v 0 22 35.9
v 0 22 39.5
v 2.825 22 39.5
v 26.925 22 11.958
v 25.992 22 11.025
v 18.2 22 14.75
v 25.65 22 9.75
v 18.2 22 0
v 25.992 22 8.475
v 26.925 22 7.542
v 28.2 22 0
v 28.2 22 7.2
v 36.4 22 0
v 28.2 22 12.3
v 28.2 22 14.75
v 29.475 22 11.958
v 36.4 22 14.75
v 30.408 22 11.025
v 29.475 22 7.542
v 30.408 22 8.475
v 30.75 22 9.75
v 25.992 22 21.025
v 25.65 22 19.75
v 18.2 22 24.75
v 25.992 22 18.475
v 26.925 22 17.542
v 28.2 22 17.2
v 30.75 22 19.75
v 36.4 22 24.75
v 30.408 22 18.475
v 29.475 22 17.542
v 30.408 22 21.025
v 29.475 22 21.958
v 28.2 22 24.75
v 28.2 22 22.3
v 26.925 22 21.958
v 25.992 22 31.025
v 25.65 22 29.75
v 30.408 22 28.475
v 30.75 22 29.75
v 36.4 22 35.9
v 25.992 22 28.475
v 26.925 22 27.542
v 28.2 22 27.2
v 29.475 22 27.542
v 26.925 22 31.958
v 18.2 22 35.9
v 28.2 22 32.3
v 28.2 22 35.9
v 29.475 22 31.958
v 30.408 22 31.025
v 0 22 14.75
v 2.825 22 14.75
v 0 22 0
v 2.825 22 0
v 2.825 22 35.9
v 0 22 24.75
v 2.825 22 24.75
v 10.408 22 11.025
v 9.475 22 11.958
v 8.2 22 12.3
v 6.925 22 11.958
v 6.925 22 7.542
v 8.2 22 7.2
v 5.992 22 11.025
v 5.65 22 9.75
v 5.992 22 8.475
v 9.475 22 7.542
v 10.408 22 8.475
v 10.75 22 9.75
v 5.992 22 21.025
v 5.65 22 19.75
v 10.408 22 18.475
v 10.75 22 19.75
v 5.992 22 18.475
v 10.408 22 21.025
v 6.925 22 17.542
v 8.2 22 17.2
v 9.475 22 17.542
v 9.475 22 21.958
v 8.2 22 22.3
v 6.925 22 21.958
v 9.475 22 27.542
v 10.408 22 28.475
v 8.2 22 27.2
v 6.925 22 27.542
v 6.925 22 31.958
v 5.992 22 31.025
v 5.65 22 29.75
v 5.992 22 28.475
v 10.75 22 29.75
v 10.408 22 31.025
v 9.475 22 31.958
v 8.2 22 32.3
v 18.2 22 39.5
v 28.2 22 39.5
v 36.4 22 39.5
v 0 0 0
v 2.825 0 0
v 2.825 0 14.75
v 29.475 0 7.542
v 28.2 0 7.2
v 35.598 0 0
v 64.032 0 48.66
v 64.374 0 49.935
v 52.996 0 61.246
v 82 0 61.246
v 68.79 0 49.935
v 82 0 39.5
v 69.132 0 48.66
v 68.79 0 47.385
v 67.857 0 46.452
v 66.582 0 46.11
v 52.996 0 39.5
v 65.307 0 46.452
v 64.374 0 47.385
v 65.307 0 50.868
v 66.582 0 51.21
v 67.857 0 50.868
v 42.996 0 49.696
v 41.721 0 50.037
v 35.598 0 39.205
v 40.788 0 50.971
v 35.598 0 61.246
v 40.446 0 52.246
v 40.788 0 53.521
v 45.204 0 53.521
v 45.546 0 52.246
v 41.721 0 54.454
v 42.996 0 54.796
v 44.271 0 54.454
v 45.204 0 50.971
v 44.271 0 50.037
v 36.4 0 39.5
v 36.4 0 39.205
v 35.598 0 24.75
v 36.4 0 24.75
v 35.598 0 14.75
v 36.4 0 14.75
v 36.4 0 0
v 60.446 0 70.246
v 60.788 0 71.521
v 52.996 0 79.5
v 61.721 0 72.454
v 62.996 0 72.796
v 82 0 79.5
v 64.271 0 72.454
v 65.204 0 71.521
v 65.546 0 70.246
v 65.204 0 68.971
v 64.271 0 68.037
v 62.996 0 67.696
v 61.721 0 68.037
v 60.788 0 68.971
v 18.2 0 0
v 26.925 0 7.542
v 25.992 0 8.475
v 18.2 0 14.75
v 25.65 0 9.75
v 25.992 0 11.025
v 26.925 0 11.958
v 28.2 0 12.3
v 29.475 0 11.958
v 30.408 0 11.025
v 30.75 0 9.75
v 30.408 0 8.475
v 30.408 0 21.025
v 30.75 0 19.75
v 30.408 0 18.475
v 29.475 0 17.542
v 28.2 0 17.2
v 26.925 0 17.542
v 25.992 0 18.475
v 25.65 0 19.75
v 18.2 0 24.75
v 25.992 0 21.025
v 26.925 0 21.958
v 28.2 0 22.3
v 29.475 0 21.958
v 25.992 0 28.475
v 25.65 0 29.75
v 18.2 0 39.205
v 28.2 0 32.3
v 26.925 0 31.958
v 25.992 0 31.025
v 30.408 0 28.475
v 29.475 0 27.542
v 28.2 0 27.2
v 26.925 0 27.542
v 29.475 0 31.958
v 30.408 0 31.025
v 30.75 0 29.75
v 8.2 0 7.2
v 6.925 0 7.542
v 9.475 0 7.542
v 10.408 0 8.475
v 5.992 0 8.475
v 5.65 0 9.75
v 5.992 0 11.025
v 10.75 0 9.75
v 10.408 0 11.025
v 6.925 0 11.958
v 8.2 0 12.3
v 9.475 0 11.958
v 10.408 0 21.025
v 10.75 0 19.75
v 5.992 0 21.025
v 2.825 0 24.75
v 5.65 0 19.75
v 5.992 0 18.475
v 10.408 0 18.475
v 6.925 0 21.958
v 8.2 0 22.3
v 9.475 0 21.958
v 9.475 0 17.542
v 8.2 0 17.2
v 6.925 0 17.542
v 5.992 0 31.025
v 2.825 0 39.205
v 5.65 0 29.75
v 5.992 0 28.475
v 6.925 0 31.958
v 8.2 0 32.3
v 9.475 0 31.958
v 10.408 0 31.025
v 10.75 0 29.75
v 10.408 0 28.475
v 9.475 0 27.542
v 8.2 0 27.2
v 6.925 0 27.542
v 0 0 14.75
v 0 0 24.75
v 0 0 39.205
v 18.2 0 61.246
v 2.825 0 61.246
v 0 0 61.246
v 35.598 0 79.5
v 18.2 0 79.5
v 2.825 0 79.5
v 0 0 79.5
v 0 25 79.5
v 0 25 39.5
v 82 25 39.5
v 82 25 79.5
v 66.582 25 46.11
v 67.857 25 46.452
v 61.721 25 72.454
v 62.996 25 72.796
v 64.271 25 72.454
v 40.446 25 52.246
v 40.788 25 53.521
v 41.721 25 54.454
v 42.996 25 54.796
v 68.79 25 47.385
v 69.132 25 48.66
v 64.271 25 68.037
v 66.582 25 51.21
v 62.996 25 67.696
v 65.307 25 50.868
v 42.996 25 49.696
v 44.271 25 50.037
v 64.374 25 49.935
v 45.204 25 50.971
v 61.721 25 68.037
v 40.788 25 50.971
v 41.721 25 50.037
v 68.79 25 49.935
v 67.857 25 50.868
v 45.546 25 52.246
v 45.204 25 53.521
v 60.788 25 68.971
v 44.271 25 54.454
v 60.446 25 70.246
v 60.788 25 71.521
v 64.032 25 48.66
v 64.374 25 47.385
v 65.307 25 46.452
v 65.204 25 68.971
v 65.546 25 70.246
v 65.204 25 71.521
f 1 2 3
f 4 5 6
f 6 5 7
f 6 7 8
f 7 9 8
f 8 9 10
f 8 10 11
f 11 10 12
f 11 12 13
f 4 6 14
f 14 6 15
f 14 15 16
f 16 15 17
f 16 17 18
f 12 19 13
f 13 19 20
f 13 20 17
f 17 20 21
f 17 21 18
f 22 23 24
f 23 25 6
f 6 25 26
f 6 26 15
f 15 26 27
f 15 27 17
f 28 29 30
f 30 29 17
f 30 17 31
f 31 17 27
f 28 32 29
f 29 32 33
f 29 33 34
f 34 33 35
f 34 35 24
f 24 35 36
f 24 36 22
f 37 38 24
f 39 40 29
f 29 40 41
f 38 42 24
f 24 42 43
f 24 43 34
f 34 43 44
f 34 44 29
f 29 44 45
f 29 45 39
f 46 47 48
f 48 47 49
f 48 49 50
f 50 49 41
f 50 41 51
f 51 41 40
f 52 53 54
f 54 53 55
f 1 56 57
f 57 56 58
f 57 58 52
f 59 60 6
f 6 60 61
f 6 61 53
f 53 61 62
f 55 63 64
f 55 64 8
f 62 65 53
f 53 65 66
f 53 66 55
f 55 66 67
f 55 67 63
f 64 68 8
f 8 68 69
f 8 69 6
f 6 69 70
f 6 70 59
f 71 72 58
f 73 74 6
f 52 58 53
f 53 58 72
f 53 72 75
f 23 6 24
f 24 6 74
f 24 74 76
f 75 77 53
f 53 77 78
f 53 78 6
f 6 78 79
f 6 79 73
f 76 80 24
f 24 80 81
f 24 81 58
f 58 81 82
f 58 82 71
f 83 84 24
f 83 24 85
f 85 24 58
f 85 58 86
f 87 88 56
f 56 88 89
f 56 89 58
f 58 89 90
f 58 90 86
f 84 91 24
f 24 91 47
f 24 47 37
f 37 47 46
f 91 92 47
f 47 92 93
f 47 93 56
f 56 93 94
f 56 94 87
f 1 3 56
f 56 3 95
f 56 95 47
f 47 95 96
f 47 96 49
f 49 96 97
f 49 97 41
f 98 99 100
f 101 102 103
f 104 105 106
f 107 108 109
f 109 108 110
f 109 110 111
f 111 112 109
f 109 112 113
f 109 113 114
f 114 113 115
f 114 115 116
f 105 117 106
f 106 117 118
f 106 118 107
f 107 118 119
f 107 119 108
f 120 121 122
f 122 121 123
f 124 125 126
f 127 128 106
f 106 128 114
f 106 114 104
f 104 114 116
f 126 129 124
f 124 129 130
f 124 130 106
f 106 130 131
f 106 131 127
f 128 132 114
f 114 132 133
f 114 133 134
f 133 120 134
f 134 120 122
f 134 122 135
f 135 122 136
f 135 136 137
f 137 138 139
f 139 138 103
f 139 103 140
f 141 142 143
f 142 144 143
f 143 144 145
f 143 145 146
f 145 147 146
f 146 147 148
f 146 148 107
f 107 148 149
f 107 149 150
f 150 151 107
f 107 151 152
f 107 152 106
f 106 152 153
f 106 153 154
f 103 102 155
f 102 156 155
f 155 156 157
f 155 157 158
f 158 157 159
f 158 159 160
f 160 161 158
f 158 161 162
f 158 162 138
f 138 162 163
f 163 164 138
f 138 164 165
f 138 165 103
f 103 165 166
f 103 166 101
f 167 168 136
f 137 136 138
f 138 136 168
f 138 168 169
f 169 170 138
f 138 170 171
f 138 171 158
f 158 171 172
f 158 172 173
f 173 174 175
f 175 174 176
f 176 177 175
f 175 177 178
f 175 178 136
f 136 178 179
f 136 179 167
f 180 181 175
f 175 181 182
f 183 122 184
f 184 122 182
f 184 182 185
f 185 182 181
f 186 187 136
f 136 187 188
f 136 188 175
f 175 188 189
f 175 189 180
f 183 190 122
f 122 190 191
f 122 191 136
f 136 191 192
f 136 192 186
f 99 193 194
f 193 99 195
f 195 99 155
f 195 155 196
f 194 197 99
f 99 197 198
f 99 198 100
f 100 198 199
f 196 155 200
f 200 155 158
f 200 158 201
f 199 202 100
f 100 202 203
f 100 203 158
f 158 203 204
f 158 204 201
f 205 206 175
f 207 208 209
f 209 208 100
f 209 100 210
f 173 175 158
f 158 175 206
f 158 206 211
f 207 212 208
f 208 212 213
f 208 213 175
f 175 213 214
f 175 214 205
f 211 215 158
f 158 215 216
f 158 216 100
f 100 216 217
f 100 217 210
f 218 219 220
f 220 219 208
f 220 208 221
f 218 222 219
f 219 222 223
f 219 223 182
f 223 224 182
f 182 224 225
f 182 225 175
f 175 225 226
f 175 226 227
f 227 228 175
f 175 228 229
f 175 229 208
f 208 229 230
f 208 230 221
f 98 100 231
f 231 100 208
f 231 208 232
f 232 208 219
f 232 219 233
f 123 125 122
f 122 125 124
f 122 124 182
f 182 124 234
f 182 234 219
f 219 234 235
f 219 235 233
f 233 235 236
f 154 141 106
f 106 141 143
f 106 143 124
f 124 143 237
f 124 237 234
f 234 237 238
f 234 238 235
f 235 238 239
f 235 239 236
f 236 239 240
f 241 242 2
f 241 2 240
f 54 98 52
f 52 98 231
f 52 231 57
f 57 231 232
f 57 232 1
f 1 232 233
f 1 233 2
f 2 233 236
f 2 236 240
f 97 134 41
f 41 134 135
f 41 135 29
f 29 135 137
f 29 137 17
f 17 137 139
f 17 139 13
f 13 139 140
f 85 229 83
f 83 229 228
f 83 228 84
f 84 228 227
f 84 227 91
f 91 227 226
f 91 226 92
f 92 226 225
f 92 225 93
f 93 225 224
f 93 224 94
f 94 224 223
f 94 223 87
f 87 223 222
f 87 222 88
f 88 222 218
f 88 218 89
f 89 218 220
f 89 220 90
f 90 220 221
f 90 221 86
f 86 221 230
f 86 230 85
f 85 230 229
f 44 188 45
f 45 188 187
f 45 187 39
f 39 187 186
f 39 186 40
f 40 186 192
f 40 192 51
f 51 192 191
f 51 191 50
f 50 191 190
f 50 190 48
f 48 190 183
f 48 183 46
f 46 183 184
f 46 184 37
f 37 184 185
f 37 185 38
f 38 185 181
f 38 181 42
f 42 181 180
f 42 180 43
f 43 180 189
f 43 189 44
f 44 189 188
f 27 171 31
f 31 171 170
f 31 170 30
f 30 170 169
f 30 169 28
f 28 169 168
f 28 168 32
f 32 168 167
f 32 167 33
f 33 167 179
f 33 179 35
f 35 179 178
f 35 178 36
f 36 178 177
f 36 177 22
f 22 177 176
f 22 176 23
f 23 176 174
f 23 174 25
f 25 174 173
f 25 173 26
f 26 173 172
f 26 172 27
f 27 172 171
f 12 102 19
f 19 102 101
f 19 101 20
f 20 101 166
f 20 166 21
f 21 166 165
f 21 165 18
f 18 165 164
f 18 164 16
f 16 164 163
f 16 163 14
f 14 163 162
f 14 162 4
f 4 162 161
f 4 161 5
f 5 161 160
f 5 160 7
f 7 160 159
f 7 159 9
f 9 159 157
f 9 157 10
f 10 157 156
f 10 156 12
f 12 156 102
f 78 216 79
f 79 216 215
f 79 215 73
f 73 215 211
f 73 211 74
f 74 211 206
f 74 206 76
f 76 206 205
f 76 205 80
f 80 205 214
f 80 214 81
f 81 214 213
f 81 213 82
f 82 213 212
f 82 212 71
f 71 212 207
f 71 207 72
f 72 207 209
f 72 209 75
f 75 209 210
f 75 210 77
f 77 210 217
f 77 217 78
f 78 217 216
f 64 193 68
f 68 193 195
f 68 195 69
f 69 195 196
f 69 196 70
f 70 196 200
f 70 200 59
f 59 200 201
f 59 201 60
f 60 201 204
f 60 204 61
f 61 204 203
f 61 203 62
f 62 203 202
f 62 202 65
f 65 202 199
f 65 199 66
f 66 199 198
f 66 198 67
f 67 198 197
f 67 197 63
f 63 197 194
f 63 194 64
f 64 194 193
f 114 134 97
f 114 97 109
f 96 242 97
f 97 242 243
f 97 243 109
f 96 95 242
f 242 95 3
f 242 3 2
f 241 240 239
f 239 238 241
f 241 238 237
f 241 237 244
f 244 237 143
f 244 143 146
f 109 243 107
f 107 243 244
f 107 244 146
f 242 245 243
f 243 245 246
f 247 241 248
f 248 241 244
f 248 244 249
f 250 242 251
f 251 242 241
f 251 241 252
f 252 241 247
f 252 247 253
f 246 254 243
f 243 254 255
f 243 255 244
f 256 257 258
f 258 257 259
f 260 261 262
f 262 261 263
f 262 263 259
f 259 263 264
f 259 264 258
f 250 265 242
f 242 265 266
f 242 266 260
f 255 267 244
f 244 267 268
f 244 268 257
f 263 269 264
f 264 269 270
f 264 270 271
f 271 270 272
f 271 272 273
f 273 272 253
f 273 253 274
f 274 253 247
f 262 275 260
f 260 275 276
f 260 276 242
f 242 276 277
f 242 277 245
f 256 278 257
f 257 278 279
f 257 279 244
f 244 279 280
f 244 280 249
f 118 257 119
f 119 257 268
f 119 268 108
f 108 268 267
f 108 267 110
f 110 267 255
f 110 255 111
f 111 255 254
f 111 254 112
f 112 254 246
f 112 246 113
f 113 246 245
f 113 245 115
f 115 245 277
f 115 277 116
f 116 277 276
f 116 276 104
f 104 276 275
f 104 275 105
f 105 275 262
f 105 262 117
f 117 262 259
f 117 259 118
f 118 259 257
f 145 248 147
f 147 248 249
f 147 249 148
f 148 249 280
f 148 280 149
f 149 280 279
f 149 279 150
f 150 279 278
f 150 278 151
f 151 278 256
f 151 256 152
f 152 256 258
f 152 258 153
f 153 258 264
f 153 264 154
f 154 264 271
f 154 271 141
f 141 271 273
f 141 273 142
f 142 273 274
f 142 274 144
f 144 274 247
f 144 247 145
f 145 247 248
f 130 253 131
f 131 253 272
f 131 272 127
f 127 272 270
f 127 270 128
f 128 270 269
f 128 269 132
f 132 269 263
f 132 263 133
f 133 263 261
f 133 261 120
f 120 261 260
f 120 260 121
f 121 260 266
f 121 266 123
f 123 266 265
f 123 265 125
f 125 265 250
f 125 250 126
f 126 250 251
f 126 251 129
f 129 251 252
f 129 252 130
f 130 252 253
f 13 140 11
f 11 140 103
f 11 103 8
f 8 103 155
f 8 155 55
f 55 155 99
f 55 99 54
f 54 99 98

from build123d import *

# Parameters (mm, degrees)
SKETCH1_W               = 36.4
SKETCH1_H               = 39.5
SKETCH1_R               = 2.55
BOSS_EXTRUDE1_DEPTH     = 22
BOSS_EXTRUDE2_START     = -22
SKETCH2_W               = 82
SKETCH2_H               = 40
BOSS_EXTRUDE2_DEPTH     = 25
F_5_0MM_DOWEL_HOLE1_D   = 5.1
CUT_EXTRUDE1_DEPTH      = 30
CUT_EXTRUDE1_DEPTH_BACK = 50
SKETCH3_W               = 85.710853131
SKETCH3_H               = 93.141989814


with BuildPart() as part:
    # Sketch1 → Boss-Extrude1 (new body)
    with BuildSketch(Plane(origin=(0, 0, 0), x_dir=(1, 0, 0), z_dir=(0, 1, 0))):
        with Locations((18.2, 19.75)):
            Rectangle(SKETCH1_W, SKETCH1_H)
        with Locations(Location((8.2, 29.75, 0), (0, 0, 270))):
            Circle(SKETCH1_R, mode=Mode.SUBTRACT)
        with Locations(Location((28.2, 29.75, 0), (0, 0, 270))):
            Circle(SKETCH1_R, mode=Mode.SUBTRACT)
        with Locations(Location((28.2, 19.75, 0), (0, 0, 270))):
            Circle(SKETCH1_R, mode=Mode.SUBTRACT)
        with Locations(Location((28.2, 9.75, 0), (0, 0, 270))):
            Circle(SKETCH1_R, mode=Mode.SUBTRACT)
        with Locations(Location((8.2, 19.75, 0), (0, 0, 270))):
            Circle(SKETCH1_R, mode=Mode.SUBTRACT)
        with Locations(Location((8.2, 9.75, 0), (0, 0, 270))):
            Circle(SKETCH1_R, mode=Mode.SUBTRACT)
    boss_extrude1 = extrude(amount=BOSS_EXTRUDE1_DEPTH)

    # Sketch2 → Boss-Extrude2 (add)
    with BuildSketch(Plane(origin=(0, 22, 0), x_dir=(1, 0, 0), z_dir=(0, 1, 0)).offset(BOSS_EXTRUDE2_START)):
        with Locations((41, 59.5)):
            Rectangle(SKETCH2_W, SKETCH2_H)
    boss_extrude2 = extrude(amount=BOSS_EXTRUDE2_DEPTH)

    # Mirror3: Boss-Extrude1, Boss-Extrude2 across plane
    add(boss_extrude1.mirror(Plane(origin=(0, 22, 0), x_dir=(1, 0, 0), z_dir=(0, 0, -1))))
    add(boss_extrude2.mirror(Plane(origin=(0, 22, 0), x_dir=(1, 0, 0), z_dir=(0, 0, -1))))

    # Ø5.0mm Dowel Hole1 (through all)
    with Locations(Plane(origin=(42.996100309, 25, 52.24566701), x_dir=(0, 0, 1), z_dir=(0, 1, 0))):
        with Locations((0, 0), (18, 20), (-3.585786438, 23.585786437)):
            Hole(F_5_0MM_DOWEL_HOLE1_D / 2)

    # Sketch3 → Cut-Extrude1 (cut, two sides: drawn at the far end of the back side and taken through both)
    with BuildSketch(Plane(origin=(0, 22, 0), x_dir=(1, 0, 0), z_dir=(0, 1, 0)).offset(-CUT_EXTRUDE1_DEPTH_BACK)):
        with Locations((42.855426566, 46.570994907)):
            Rectangle(SKETCH3_W, SKETCH3_H)
    extrude(amount=CUT_EXTRUDE1_DEPTH + CUT_EXTRUDE1_DEPTH_BACK, mode=Mode.SUBTRACT)


solid = part.part
